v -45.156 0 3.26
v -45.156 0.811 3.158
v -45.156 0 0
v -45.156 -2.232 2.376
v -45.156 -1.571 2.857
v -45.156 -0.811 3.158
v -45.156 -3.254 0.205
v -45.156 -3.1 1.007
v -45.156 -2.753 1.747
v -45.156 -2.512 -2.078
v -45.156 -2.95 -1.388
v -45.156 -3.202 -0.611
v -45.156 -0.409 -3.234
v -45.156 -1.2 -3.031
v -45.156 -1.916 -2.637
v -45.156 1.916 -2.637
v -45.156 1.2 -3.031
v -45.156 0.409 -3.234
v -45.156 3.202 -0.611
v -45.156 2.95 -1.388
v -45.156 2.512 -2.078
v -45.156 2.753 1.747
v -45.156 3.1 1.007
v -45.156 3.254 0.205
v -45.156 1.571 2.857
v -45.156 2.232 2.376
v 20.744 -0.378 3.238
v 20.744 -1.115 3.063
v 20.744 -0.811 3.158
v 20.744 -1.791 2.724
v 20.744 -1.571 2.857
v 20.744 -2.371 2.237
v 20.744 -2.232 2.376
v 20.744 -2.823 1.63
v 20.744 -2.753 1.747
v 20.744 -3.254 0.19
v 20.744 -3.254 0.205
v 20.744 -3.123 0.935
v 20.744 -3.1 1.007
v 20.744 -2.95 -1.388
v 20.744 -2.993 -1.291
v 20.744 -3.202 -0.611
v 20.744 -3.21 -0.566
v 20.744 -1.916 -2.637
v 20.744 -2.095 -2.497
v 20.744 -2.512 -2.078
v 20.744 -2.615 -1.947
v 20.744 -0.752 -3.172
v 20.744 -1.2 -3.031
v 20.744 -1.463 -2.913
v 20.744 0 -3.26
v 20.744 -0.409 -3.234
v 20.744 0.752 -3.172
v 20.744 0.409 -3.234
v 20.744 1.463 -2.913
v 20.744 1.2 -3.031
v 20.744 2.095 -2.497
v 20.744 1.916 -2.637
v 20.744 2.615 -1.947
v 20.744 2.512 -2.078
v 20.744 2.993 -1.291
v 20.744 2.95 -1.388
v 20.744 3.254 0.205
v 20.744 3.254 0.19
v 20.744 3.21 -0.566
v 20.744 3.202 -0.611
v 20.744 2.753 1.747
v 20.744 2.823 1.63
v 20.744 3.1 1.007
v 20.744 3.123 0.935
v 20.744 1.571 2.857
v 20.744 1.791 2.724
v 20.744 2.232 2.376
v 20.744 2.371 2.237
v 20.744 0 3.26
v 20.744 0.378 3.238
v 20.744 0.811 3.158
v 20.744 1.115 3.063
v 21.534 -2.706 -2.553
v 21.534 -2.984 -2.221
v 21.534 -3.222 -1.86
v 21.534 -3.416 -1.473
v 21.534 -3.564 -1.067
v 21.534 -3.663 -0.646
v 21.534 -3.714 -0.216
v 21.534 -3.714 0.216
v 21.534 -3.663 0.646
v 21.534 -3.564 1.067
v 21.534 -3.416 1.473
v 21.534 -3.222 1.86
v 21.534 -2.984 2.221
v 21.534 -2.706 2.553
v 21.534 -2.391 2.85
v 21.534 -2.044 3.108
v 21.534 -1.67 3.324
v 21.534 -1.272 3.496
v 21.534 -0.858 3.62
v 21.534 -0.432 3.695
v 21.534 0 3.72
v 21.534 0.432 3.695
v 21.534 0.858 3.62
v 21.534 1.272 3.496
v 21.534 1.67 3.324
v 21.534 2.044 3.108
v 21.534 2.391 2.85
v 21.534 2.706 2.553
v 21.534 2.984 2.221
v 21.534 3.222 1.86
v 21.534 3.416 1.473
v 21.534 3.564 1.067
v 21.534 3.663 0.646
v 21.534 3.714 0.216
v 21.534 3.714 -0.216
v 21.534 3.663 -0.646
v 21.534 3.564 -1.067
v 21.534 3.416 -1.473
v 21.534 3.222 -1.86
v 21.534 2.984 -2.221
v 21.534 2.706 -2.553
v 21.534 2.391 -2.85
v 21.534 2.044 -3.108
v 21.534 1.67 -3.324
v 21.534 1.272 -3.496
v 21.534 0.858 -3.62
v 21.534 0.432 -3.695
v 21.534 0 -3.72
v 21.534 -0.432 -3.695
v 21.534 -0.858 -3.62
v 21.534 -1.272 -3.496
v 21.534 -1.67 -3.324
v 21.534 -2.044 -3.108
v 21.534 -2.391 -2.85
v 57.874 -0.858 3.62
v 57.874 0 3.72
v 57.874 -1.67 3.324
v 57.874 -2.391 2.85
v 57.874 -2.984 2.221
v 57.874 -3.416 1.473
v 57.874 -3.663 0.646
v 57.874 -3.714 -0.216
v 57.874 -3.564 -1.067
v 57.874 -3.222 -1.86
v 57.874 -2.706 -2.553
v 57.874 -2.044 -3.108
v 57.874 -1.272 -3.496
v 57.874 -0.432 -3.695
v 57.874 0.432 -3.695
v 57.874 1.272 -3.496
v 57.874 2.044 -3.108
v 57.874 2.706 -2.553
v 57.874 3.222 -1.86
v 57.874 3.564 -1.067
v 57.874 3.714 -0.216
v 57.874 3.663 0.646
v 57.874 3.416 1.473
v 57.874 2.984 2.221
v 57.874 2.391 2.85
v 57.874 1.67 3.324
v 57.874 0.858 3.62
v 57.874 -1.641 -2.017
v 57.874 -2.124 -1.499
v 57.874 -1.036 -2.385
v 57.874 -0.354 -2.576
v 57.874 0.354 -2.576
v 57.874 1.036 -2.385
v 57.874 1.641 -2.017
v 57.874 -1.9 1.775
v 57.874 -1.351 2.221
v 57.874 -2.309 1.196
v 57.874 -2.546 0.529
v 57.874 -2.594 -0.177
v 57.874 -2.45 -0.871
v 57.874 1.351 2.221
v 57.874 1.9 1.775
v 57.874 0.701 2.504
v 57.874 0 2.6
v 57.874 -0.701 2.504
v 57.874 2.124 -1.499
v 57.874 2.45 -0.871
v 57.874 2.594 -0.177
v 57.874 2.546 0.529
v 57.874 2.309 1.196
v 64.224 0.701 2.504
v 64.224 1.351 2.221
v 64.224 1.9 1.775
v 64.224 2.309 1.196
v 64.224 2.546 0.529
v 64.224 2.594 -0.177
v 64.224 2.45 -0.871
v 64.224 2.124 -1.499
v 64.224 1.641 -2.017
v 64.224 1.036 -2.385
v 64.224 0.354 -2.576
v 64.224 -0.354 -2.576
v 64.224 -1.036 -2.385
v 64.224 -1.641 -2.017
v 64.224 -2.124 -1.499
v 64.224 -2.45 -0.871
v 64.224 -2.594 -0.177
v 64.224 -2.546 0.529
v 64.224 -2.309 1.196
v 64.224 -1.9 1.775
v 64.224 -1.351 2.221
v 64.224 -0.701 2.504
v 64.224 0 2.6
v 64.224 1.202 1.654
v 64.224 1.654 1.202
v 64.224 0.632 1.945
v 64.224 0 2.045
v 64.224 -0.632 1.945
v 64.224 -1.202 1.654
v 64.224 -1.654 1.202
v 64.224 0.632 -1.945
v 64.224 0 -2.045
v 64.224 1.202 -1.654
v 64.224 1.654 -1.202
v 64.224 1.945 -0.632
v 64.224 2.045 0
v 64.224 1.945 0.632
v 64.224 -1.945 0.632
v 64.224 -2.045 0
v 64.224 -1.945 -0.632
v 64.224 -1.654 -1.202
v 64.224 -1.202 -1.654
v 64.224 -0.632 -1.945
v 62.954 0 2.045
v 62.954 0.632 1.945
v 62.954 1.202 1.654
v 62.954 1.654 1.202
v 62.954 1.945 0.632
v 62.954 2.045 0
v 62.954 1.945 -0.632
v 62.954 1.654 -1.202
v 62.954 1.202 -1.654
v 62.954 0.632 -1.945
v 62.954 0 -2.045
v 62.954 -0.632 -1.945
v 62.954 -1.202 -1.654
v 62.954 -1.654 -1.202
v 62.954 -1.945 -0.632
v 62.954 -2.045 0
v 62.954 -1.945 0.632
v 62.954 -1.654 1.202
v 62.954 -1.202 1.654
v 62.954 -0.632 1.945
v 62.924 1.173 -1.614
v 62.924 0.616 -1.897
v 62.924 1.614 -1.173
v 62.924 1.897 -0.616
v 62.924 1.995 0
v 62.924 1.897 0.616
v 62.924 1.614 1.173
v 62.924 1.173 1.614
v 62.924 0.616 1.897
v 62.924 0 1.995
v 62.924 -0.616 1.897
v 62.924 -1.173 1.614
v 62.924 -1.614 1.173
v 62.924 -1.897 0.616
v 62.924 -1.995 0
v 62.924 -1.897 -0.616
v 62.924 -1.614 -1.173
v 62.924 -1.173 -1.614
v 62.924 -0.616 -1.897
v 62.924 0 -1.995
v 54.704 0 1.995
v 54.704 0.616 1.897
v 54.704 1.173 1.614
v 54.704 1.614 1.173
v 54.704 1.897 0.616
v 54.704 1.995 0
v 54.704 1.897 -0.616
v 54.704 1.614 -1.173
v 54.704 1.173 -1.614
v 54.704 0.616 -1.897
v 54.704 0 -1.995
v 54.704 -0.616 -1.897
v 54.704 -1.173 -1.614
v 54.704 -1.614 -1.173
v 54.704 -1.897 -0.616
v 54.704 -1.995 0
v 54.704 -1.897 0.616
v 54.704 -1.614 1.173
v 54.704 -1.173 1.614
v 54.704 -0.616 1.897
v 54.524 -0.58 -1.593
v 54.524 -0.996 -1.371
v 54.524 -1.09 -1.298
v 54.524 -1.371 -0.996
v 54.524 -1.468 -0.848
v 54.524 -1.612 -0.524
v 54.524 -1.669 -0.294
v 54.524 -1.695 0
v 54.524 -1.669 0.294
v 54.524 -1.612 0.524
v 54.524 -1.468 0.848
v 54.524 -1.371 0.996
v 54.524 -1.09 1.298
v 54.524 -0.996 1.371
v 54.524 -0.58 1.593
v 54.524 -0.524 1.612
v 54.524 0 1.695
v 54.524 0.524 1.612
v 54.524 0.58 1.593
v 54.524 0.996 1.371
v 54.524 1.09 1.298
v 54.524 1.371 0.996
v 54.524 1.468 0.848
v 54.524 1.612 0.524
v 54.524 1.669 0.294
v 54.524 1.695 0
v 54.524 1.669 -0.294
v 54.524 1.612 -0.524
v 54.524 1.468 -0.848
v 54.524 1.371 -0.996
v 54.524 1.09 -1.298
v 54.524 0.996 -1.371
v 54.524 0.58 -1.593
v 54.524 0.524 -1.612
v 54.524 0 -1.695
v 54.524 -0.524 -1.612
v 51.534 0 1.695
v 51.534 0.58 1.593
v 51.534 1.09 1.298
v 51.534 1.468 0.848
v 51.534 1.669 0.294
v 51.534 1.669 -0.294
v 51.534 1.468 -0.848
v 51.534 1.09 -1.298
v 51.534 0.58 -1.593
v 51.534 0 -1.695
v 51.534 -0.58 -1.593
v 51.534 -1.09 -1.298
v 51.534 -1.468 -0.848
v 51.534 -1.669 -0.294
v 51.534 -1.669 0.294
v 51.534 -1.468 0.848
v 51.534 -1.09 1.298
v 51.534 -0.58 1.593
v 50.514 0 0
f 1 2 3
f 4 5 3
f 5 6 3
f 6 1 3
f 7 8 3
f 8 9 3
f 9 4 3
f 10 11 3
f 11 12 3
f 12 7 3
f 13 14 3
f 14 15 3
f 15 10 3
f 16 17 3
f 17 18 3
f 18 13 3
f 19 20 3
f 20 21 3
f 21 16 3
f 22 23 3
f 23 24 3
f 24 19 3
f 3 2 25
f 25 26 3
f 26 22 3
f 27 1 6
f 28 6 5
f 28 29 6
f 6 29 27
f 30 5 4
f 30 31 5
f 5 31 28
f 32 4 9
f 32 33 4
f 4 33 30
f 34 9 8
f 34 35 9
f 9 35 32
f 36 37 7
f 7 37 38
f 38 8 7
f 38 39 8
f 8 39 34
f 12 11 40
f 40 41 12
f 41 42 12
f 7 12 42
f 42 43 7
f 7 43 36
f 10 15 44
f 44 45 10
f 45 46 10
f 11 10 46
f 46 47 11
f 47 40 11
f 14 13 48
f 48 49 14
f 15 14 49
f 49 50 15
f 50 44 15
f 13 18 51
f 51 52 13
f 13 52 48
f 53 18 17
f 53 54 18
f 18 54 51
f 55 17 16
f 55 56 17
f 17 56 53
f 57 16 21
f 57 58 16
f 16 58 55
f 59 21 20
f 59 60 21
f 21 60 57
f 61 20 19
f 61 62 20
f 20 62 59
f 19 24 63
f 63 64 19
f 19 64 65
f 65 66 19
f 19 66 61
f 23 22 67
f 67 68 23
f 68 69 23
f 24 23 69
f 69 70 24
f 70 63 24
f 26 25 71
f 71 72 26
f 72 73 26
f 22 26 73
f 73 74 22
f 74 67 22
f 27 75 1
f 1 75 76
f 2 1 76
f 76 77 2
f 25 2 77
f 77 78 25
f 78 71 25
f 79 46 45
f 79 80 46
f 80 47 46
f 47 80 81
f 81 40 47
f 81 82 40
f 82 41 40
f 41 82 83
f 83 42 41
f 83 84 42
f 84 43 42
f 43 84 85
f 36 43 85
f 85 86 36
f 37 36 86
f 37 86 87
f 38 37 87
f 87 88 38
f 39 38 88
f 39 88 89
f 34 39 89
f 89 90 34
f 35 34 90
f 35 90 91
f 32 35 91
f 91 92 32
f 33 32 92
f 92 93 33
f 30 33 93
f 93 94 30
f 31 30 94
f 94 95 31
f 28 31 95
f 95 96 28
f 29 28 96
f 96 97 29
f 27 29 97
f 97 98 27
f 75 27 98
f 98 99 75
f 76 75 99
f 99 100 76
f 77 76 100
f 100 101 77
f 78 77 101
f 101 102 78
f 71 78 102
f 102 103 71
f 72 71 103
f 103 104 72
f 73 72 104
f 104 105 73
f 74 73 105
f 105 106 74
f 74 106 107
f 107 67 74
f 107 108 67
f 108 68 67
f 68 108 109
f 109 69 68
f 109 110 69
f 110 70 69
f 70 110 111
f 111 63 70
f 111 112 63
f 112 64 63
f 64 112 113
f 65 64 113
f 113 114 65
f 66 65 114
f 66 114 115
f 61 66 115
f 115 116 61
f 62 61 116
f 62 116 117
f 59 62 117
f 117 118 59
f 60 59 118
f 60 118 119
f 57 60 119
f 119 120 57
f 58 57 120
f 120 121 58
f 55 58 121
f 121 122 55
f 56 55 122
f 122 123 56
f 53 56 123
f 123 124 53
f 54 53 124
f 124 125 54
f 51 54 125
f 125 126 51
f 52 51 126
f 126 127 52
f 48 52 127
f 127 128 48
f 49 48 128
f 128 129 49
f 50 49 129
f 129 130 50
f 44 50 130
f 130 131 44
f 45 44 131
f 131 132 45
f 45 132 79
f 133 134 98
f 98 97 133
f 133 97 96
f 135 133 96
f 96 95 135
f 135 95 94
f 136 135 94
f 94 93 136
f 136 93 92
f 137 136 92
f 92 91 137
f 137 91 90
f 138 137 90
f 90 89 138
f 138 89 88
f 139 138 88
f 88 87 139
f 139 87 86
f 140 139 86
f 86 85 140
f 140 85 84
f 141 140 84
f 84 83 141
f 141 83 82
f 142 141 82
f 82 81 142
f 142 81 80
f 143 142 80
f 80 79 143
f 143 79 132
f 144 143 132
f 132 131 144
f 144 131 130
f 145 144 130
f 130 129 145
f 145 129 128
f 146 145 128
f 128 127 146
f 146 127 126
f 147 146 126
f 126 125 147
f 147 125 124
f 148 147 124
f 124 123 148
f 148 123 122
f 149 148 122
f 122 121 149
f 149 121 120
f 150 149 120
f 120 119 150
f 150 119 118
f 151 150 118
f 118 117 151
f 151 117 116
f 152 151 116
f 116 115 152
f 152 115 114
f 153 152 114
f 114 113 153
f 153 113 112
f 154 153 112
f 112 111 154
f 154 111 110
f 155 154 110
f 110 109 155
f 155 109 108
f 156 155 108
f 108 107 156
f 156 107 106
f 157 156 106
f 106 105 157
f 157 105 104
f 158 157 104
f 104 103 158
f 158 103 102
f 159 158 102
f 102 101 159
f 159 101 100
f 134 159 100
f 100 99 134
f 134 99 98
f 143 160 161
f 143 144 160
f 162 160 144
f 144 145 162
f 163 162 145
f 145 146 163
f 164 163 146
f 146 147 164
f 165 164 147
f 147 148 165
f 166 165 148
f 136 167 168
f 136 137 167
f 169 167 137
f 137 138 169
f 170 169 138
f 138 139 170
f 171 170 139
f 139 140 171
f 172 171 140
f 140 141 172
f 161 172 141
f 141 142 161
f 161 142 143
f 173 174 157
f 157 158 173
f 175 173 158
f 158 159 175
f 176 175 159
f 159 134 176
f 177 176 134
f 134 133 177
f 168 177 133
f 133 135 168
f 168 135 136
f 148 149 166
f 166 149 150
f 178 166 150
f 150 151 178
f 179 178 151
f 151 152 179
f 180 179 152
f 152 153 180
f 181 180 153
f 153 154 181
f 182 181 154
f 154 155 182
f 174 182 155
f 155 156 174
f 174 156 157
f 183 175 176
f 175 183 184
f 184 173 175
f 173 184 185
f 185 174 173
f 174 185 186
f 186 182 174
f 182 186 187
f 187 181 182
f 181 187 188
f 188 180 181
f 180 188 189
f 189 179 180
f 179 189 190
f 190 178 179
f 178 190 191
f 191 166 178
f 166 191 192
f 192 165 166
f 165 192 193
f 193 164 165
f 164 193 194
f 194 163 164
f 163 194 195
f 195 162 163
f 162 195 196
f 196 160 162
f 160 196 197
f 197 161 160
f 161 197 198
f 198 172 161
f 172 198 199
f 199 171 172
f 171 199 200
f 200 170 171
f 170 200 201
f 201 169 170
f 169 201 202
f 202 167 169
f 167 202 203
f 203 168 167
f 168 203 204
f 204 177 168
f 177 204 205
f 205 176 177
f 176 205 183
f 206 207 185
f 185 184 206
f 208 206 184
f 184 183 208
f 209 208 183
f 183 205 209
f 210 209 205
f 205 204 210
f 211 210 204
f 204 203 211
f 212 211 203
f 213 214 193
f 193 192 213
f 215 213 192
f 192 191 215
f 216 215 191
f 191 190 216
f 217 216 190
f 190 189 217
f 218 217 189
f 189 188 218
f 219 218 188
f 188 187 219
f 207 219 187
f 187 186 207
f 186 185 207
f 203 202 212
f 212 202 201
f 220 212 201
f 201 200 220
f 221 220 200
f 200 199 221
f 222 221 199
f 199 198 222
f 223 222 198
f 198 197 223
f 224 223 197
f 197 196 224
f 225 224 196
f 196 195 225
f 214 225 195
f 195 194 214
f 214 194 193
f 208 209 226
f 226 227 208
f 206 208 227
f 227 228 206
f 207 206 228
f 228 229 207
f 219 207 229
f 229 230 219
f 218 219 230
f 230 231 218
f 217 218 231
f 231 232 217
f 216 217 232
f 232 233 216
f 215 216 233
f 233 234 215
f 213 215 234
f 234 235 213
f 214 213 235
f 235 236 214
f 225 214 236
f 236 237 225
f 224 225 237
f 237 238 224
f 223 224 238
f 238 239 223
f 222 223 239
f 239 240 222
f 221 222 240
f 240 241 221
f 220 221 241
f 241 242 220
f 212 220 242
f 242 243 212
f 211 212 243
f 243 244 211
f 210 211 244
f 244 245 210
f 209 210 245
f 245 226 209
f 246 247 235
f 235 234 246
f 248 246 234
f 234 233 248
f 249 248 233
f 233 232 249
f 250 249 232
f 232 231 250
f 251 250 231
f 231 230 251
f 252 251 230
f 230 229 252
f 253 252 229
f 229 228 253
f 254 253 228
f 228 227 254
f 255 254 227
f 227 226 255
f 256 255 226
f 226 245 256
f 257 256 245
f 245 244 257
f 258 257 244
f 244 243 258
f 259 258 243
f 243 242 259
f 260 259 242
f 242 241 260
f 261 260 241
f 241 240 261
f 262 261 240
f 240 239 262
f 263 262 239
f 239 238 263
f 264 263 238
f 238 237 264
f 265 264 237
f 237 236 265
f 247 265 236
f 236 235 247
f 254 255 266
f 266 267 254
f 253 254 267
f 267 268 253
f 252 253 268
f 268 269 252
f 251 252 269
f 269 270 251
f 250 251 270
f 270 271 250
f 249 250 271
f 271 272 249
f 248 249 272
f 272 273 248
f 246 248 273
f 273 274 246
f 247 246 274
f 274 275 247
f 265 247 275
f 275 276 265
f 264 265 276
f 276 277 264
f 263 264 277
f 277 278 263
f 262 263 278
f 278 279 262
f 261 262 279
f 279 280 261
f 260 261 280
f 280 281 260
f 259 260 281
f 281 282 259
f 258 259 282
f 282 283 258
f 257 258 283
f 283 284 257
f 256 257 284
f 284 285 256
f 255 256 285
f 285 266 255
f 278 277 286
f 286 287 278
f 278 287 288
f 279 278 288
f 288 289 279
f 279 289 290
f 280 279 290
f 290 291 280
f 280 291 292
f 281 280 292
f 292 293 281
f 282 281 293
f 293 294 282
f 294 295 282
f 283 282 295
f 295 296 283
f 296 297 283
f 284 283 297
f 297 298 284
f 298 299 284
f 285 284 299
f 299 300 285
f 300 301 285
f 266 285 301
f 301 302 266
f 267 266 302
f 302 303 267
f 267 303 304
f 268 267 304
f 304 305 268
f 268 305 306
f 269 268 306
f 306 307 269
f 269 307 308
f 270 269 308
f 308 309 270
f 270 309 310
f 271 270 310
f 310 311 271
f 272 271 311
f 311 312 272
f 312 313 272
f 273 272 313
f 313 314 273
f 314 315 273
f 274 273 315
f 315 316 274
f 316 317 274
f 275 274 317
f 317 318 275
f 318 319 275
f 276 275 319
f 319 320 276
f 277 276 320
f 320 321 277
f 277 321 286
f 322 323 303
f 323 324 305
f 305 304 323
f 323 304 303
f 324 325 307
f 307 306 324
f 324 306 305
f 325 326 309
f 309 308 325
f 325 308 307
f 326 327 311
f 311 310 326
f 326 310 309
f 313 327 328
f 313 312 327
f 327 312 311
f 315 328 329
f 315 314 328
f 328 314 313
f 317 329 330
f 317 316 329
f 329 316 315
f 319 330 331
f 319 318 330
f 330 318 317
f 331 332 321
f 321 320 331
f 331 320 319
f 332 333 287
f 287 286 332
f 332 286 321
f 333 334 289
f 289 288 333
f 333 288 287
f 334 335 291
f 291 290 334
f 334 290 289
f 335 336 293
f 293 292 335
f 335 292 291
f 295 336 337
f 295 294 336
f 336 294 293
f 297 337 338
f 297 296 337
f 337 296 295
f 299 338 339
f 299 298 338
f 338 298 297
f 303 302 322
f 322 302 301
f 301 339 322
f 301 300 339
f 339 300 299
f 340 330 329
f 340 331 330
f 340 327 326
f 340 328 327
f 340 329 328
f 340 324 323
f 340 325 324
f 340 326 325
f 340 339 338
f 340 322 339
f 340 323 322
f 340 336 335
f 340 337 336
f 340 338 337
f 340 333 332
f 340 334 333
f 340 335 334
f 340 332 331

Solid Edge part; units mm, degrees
sketch "Sketch1" plane through (0, 0, 0) normal (0, -1, 0) x (1, 0, 0)
  line L0 (21.534, 3.72) -> (57.874, 3.72)
  line L1 (57.874, 3.72) -> (57.874, 2.6)
  line L2 (57.874, 2.6) -> (64.224, 2.6)
  line L3 (64.224, 0) -> (64.224, 2.6)
  line L4 (0, 0) -> (64.224, 0)
  line L5 (0, 0) -> (-45.156, 0)
  line L6 (-45.156, 0) -> (-45.156, 3.26)
  line L7 (-45.156, 3.26) -> (20.744, 3.26)
  line L8 (20.744, 3.26) -> (21.534, 3.72)
revolve "RevolvedProtrusion1" add sketch "Sketch1" angle 360 about axis through (0, 0, 0) along (1, 0, 0)
sketch "Sketch2" plane through (0, 0, 0) normal (0, -1, 0) x (1, 0, 0)
  line L0 (62.924, 1.995) -> (54.704, 1.995)
  line L1 (54.704, 1.995) -> (54.524, 1.695)
  line L2 (54.524, 1.695) -> (51.534, 1.695)
  line L3 (51.534, 1.695) -> (50.514, 0)
  line L4 (50.514, 0) -> (64.224, 0)
  line L5 (64.224, 0) -> (64.224, 2.045)
  line L6 (64.224, 2.045) -> (62.954, 2.045)
  line L7 (62.954, 2.045) -> (62.924, 1.995)
revolve "RevolvedCutout1" cut sketch "Sketch2" angle 360 about axis through (21.534, 0, 0) along (1, 0, 0)
